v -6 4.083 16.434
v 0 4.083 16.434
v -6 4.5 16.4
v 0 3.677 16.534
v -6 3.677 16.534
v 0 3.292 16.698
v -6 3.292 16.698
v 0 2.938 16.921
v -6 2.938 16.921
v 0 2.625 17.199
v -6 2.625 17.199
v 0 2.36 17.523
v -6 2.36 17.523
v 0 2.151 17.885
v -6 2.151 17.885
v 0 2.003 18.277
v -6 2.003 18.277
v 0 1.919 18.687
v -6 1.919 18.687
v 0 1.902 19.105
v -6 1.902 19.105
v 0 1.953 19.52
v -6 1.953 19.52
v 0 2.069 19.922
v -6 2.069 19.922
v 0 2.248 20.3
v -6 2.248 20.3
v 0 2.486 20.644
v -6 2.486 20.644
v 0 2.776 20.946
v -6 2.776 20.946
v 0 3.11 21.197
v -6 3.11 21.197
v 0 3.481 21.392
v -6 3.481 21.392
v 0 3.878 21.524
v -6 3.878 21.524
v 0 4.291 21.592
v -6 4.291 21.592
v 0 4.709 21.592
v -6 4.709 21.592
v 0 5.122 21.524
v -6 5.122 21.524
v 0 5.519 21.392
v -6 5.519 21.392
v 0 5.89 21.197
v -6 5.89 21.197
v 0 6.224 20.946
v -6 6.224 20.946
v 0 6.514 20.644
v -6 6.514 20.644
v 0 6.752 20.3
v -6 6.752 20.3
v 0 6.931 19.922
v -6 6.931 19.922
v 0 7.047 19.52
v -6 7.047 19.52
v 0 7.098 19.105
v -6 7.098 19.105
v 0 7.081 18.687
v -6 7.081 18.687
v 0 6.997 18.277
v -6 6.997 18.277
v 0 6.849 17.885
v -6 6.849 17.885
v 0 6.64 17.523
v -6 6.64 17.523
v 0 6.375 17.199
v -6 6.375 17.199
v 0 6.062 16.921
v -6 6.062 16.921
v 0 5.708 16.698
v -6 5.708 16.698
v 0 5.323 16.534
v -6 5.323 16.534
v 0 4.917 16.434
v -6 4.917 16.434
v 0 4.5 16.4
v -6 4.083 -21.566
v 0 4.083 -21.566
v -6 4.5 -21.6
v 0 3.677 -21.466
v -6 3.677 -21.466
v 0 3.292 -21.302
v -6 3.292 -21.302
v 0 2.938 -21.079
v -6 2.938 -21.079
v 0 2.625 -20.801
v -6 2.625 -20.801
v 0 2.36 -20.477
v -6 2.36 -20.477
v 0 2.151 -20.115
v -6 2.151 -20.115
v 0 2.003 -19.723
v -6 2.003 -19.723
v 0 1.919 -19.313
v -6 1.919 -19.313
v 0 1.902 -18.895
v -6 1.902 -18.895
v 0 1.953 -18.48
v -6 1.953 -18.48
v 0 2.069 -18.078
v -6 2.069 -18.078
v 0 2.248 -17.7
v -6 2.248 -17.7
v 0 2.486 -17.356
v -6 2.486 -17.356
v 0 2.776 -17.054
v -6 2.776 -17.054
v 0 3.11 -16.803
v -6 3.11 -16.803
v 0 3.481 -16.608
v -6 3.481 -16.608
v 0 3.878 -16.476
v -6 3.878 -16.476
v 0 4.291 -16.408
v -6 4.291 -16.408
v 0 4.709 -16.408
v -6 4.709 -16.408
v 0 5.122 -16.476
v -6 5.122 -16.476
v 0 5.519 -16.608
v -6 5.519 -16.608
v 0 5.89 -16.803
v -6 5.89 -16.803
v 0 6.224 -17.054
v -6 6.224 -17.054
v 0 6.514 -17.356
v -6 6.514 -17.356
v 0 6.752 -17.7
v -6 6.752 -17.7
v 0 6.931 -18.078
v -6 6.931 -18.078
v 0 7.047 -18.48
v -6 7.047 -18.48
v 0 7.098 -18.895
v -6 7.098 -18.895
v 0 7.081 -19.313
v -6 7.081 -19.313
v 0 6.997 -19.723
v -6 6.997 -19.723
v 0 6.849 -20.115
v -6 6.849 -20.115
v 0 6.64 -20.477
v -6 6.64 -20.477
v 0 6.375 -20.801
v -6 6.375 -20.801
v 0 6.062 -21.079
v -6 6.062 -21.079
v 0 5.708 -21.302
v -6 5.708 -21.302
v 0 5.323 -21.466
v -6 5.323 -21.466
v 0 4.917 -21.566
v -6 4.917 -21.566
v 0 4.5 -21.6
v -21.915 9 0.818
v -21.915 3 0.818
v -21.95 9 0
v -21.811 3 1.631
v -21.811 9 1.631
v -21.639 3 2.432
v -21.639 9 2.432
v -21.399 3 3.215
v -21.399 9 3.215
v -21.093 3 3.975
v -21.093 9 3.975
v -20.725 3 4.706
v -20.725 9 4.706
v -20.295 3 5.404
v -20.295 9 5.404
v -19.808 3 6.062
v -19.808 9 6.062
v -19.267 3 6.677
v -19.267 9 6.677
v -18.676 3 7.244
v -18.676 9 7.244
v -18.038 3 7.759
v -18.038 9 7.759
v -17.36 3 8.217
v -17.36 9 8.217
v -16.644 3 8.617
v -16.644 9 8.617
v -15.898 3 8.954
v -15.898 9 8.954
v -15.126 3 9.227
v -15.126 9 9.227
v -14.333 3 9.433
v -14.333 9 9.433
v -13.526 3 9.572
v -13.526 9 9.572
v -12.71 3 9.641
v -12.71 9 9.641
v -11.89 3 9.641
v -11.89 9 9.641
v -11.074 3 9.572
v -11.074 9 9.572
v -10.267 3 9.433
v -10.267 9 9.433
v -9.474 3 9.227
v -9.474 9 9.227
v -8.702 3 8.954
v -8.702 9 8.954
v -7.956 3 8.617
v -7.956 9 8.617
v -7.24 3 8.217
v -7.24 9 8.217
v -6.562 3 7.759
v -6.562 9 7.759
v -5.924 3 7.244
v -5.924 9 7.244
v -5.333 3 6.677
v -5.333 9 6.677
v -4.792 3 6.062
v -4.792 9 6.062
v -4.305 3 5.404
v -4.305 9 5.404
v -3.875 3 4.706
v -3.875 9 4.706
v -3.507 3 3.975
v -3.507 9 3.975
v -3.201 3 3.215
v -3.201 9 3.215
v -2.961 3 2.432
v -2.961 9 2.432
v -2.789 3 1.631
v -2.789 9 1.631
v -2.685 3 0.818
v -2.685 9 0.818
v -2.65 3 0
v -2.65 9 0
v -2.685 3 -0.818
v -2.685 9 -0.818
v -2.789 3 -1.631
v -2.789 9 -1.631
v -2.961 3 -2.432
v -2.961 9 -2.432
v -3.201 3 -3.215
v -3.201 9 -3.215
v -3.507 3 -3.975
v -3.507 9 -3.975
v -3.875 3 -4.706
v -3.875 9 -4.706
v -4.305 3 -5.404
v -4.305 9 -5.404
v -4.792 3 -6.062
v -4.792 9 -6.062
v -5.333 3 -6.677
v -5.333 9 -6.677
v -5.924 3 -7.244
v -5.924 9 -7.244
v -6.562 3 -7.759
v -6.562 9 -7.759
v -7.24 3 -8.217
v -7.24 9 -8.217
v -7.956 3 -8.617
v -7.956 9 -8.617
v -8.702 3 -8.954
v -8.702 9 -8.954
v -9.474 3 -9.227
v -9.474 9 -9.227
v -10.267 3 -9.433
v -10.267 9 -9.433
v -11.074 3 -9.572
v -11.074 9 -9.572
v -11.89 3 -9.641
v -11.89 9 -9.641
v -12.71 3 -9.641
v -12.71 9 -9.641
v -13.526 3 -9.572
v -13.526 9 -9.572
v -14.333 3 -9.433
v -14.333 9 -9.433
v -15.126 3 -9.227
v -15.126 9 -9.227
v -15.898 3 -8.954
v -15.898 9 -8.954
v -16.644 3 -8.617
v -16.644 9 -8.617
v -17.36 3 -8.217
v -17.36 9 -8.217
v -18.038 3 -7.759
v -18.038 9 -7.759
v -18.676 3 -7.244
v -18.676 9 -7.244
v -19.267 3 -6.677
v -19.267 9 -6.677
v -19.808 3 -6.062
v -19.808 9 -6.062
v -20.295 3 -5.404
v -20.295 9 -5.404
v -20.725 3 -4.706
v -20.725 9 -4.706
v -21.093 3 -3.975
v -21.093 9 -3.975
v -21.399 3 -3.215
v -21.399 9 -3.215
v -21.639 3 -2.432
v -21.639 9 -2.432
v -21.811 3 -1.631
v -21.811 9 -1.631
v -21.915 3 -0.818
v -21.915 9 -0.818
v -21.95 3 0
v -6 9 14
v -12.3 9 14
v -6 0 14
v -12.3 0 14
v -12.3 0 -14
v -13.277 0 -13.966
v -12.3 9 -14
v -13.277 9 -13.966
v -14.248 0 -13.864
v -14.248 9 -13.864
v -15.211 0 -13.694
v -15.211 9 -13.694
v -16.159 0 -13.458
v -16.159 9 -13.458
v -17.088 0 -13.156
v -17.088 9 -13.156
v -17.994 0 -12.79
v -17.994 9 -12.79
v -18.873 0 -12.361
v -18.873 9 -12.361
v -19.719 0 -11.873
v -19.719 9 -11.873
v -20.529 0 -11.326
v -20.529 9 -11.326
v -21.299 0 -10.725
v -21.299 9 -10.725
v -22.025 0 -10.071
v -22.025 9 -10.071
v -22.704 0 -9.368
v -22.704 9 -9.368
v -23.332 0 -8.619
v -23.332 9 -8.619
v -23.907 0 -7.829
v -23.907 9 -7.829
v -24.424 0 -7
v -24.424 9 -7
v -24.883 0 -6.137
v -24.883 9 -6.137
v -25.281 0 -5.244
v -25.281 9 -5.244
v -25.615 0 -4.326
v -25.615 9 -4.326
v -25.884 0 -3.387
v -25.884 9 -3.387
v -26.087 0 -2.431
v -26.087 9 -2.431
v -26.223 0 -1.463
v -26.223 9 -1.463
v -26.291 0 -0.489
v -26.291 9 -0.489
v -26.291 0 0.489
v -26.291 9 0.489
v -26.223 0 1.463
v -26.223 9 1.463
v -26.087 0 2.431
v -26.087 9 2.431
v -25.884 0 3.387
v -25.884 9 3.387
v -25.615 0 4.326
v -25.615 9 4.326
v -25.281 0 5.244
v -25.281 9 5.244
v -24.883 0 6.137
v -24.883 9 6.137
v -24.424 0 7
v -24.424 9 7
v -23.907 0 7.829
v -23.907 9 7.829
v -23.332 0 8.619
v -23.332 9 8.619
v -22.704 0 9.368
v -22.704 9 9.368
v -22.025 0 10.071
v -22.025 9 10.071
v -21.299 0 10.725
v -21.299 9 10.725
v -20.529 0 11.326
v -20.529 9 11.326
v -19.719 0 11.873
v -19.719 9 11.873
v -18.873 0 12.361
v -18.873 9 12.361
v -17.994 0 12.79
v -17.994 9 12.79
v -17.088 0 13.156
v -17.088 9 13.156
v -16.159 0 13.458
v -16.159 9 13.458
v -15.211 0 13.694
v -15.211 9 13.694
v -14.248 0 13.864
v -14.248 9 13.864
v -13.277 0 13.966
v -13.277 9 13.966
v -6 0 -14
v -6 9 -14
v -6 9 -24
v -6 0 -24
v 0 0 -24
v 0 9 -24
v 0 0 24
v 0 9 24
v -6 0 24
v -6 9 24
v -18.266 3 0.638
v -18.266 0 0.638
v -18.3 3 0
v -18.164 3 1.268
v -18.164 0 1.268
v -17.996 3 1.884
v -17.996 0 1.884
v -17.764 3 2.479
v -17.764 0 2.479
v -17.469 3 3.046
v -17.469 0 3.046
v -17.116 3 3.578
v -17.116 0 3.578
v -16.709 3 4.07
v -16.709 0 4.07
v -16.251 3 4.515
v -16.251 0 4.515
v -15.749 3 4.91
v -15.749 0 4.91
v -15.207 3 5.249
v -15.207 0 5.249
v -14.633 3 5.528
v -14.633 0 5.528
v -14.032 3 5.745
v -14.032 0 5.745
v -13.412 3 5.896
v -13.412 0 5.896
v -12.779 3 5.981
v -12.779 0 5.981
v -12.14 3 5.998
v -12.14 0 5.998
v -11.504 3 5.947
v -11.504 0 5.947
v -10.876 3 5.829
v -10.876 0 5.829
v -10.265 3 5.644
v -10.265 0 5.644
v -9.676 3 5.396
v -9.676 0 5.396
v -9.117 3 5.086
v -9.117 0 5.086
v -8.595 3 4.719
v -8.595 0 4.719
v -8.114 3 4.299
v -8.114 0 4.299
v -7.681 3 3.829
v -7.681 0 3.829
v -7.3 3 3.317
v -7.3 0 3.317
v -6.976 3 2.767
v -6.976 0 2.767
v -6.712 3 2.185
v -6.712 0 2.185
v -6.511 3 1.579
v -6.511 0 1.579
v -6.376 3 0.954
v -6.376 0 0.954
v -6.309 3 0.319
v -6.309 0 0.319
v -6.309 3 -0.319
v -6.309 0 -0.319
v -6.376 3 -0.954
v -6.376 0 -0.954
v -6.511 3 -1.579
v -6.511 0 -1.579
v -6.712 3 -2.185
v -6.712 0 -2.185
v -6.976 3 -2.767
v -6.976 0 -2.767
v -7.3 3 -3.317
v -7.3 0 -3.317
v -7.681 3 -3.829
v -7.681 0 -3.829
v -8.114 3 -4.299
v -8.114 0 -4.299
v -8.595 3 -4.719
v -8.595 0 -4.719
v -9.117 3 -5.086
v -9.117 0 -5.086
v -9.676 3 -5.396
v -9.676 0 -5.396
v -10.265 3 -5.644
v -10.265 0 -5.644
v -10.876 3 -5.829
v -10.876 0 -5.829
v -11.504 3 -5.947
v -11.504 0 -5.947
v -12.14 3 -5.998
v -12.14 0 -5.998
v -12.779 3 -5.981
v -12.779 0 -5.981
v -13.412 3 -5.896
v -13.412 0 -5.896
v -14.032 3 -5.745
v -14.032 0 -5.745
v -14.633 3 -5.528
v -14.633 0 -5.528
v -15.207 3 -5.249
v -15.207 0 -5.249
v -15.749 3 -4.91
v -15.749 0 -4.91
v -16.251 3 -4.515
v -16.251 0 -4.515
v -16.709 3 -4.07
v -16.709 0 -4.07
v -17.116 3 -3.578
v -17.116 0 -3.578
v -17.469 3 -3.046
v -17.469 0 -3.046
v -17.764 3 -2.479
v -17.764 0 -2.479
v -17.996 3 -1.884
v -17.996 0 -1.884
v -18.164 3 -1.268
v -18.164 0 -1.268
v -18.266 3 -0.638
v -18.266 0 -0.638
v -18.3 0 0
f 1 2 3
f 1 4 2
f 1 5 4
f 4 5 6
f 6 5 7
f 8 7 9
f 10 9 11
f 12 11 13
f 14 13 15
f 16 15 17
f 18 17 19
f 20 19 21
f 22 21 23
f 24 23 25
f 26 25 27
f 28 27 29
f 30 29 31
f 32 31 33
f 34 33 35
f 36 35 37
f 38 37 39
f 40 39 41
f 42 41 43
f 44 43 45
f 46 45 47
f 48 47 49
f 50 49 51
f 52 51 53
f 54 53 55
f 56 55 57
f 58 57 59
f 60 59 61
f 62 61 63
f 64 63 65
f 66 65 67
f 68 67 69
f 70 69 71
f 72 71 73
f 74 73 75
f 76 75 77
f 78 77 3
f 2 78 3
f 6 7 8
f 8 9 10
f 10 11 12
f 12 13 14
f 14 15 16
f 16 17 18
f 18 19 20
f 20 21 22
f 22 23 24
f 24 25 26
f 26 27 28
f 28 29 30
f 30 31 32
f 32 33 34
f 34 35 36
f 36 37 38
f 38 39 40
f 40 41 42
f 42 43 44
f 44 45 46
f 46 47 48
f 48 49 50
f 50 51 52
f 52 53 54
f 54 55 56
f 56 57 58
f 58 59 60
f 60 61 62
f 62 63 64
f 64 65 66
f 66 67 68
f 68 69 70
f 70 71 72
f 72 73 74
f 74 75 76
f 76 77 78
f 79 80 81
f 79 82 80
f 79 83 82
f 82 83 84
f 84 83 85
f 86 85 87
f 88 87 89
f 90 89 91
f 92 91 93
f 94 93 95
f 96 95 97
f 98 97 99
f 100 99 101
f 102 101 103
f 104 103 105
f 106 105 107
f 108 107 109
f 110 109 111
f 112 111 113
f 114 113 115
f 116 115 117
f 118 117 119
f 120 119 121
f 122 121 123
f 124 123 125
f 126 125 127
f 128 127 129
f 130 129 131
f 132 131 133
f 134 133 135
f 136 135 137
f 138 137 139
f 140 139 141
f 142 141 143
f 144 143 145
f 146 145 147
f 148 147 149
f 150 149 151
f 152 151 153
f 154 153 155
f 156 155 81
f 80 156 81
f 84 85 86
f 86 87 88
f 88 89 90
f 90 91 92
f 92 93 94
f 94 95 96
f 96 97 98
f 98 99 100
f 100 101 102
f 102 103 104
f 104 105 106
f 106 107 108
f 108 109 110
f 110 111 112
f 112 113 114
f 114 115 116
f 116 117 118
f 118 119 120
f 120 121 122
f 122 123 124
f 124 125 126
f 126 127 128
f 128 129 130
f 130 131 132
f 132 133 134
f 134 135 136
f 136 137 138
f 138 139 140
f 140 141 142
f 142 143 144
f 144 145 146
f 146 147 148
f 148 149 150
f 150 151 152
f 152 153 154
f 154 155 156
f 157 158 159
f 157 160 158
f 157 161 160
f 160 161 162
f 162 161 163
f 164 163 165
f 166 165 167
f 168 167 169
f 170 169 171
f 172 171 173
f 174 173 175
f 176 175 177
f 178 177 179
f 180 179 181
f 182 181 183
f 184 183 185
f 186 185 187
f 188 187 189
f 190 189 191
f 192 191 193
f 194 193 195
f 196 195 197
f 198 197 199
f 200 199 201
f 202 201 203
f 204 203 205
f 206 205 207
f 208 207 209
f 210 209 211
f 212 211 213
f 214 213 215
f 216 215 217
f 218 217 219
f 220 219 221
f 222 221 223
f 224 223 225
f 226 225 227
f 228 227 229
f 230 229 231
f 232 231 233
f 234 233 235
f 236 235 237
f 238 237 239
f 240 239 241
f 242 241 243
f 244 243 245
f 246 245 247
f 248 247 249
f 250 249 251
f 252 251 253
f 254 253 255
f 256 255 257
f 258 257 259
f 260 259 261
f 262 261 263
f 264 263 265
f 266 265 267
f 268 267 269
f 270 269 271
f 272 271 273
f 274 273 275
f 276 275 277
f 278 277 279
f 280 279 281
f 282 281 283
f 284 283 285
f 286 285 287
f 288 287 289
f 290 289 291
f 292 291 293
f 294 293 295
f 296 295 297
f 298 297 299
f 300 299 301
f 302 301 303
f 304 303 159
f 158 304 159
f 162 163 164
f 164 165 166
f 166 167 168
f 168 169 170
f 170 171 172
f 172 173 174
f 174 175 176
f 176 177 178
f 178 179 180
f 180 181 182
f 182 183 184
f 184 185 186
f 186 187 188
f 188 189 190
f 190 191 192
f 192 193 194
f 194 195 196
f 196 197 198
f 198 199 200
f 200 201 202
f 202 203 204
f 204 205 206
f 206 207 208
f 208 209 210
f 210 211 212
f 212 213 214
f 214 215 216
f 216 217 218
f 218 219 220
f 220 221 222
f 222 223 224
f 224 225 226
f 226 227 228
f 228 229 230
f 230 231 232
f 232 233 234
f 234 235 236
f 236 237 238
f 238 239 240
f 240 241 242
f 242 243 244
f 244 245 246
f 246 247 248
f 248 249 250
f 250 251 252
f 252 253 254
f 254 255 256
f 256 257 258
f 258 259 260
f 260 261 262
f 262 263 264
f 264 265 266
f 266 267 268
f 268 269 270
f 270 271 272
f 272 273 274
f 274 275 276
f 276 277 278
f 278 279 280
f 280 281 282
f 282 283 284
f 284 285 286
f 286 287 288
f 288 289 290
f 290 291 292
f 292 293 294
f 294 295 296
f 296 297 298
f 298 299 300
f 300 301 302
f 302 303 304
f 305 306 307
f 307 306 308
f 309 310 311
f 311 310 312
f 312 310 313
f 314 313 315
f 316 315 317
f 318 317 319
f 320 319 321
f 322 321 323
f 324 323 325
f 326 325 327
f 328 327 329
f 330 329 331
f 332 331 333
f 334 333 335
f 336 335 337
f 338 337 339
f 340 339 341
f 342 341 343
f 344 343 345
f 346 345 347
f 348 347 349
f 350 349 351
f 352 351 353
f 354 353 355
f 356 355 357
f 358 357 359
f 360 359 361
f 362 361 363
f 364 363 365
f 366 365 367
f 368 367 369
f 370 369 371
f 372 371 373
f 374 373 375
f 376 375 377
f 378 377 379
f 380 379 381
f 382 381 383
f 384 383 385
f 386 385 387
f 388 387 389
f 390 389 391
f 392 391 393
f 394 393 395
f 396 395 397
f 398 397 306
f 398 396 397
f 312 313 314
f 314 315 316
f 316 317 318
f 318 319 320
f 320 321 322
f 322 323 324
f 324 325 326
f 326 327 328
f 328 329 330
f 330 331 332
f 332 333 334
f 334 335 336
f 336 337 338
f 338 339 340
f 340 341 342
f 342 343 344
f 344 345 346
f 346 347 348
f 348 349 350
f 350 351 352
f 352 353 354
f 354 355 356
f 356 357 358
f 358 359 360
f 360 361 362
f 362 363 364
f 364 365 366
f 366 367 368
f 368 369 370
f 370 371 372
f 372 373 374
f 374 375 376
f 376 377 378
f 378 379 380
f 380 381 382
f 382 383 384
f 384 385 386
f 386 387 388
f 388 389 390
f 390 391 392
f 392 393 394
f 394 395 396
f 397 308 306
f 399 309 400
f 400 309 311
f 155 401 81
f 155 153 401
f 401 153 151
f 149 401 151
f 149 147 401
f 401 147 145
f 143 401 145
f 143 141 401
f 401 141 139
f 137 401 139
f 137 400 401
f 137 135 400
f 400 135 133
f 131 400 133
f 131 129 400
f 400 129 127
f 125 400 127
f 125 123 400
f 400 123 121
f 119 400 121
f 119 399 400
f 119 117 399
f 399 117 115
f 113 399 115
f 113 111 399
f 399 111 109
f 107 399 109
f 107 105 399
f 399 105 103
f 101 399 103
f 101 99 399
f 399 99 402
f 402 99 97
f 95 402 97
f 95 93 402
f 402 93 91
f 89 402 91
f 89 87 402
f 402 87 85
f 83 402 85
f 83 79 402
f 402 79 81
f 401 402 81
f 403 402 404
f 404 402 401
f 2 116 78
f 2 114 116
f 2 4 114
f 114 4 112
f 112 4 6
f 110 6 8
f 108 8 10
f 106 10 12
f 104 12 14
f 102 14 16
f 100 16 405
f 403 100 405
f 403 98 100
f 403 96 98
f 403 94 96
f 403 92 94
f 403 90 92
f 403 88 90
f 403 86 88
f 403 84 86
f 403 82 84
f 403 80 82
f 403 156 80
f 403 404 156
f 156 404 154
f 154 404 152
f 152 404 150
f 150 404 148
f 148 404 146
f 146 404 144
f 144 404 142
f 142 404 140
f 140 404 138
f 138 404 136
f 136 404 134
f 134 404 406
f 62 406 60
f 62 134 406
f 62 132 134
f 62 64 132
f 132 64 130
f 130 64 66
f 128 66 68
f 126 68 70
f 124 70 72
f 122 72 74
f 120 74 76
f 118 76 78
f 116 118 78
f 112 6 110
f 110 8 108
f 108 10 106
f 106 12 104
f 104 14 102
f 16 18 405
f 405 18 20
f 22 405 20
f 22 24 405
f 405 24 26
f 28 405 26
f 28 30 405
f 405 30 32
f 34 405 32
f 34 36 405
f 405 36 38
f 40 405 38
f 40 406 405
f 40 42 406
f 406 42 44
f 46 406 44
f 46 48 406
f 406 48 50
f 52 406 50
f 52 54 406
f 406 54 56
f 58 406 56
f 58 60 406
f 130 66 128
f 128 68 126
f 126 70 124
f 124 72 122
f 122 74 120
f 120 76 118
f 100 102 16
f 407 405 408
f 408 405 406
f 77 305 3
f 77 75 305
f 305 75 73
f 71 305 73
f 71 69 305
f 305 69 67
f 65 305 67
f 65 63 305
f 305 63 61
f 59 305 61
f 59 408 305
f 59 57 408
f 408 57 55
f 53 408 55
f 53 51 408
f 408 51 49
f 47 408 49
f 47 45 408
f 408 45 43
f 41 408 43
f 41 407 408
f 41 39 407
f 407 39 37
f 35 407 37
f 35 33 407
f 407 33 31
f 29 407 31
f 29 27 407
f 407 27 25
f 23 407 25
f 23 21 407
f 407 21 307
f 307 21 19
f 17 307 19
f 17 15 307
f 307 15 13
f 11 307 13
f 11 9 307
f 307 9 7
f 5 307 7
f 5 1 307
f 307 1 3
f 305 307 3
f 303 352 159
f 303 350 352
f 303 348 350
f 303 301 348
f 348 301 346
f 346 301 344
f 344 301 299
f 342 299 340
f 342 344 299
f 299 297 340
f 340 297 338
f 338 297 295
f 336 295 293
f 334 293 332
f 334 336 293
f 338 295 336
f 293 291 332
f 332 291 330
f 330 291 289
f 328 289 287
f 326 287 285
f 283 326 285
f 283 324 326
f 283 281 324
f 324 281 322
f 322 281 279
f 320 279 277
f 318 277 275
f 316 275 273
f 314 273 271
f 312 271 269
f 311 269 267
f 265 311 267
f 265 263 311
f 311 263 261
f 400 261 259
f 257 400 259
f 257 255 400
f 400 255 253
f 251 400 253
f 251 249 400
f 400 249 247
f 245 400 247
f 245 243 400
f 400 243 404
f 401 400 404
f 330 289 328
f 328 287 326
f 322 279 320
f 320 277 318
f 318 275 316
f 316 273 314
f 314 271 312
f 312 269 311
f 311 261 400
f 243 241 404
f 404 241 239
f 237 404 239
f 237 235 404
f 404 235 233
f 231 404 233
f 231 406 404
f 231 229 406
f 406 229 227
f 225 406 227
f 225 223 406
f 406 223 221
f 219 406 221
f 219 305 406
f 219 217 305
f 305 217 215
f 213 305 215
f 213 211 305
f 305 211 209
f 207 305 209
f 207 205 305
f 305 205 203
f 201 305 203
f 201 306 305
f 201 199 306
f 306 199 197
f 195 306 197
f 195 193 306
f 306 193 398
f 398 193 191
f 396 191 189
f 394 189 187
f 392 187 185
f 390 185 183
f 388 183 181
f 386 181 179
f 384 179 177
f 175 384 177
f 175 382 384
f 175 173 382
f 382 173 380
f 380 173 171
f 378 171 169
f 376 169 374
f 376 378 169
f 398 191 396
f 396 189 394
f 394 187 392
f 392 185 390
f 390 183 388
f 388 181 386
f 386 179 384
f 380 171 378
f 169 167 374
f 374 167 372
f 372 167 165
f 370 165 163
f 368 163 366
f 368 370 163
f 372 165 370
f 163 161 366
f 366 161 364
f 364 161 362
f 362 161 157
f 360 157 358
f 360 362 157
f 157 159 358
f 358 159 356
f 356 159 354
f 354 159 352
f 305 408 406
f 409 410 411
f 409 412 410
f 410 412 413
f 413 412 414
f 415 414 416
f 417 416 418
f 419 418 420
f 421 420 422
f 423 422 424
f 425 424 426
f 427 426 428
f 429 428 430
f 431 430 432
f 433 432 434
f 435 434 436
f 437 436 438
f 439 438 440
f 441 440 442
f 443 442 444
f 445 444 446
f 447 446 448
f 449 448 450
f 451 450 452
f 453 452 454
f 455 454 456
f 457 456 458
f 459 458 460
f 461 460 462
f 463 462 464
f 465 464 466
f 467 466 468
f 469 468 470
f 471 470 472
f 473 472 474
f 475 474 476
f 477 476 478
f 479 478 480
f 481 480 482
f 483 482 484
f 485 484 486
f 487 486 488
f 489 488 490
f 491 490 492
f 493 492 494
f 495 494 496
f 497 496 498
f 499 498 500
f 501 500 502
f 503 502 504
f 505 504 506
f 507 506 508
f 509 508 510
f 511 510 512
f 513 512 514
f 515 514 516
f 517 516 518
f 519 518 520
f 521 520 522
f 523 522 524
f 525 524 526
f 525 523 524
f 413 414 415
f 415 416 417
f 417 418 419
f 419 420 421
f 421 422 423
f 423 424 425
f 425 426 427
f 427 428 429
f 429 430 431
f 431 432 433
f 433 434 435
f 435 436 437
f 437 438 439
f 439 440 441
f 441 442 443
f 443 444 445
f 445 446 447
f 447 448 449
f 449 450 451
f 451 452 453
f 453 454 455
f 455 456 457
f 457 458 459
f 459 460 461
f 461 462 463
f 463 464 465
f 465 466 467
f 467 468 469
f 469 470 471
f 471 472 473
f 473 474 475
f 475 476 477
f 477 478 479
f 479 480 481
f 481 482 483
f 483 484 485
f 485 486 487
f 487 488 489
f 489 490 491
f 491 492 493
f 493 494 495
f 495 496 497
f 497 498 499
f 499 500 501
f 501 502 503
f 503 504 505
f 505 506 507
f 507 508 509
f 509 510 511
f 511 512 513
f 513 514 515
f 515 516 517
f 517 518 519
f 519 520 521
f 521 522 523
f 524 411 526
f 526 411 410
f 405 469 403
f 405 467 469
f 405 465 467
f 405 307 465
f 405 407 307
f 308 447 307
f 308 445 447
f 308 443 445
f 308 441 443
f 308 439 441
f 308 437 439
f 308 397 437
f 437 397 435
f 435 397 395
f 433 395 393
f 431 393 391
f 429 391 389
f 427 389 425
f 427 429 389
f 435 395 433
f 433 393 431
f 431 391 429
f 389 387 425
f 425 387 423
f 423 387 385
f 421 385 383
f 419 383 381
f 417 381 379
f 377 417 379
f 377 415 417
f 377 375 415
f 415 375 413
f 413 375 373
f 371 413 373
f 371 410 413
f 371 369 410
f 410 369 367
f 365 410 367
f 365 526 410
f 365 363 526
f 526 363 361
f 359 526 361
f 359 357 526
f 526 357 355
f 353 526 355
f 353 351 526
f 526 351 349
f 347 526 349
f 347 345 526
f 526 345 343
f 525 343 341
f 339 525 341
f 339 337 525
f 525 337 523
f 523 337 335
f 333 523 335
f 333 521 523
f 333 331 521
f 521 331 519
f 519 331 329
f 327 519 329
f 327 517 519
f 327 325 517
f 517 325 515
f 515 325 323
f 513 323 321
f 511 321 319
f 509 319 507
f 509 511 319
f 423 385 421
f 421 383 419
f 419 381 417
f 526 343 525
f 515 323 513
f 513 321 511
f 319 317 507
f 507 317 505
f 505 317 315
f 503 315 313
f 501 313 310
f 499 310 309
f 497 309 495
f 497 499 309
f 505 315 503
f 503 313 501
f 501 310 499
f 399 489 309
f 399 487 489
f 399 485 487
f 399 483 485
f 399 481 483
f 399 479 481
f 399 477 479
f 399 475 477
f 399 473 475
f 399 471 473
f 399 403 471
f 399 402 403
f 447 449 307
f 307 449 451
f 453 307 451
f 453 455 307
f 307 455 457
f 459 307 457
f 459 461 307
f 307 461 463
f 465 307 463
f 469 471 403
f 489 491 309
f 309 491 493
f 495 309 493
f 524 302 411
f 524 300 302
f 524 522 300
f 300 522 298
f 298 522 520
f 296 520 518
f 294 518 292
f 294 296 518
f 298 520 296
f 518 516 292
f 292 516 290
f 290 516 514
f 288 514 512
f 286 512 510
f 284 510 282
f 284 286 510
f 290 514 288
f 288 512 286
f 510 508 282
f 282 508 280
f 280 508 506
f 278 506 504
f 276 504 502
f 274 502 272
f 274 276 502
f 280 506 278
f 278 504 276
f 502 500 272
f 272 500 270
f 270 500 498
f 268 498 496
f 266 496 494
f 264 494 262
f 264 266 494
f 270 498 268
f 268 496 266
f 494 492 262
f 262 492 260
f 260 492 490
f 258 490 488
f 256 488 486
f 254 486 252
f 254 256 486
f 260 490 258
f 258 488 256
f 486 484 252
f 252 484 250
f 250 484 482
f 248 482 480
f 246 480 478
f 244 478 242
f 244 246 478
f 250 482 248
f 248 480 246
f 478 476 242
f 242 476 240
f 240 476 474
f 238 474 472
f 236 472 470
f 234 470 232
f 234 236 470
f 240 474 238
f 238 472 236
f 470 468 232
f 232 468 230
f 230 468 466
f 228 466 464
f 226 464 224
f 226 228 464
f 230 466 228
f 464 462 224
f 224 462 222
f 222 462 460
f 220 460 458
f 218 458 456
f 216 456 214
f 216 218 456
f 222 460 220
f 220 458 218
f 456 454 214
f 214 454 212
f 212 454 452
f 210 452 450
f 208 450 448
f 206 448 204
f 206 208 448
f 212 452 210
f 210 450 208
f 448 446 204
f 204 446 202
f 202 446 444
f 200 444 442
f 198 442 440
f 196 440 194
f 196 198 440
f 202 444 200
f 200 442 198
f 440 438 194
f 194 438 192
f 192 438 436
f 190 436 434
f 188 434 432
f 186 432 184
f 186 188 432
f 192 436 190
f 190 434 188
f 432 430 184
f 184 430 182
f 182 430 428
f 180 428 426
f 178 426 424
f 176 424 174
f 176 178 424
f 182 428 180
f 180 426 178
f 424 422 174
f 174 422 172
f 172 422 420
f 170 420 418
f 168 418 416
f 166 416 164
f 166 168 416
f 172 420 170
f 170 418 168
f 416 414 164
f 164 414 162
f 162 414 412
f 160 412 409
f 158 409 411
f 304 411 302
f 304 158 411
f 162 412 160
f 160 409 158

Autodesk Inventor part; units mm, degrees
ref_plane "YZ Plane" through (0, 0, 0) normal (1, 0, 0) x (0, 1, 0)
ref_plane "XZ Plane" through (0, 0, 0) normal (0, 1, 0) x (-1, 0, 0)
ref_plane "XY Plane" through (0, 0, 0) normal (0, 0, 1) x (1, 0, 0)
sketch "Sketch1" plane through (0, 0, 0) normal (0, 1, 0) x (-1, 0, 0)
  line L0 (0, 0) -> (12.3, 0)
  circle A0 centre (12.3, 0) radius 9.65
  circle A1 centre (12.3, 0) radius 6
  arc A2 (12.3, -14) -> (12.3, 14) centre (12.3, 0) ccw
  line L1 (12.3, 14) -> (0, 14)
  line L2 (0, 14) -> (0, 24)
  line L3 (0, 24) -> (6, 24)
  line L4 (6, 24) -> (6, 14)
  line L5 (12.3, -14) -> (0, -14)
  line L6 (0, -14) -> (0, -24)
  line L7 (0, -24) -> (6, -24)
  line L8 (6, -24) -> (6, -14)
  line L9 (0, 14) -> (0, -14)
  dimension "d0" = 12.3
  dimension "d1" = 19.3
  dimension "d2" = 12
  dimension "d3" = 28
  dimension "d4" = 10
  dimension "d5" = 6
  dimension "d6" = 10
extrude "Extrusion1" add sketch "Sketch1" along normal blind 3 contours A0
extrude "Extrusion2" add sketch "Sketch1" along normal blind 9 contours L9 L1 A2 L5 | L2 L3 L4 L1 | L5 L8 L7 L6
sketch "Sketch2" plane through (0, 0, 24) normal (1, 0, 0) x (0, 0, -1)
  line L0 (0, 0) -> (0, 9) projected
  line L1 (0, 4.5) -> (5, 4.5)
  line L2 (48, 0) -> (48, 9) projected
  line L3 (48, 4.5) -> (43, 4.5)
  circle A0 centre (5, 4.5) radius 2.6
  circle A1 centre (43, 4.5) radius 2.6
  point P0 (24, 0)
  dimension "d11" = 5
  dimension "d12" = 5
  dimension "d13" = 5.2
  dimension "d14" = 5.2
extrude "Extrusion3" cut sketch "Sketch2" against normal blind 9
properties part number "bearing_holder_plate_tb"
